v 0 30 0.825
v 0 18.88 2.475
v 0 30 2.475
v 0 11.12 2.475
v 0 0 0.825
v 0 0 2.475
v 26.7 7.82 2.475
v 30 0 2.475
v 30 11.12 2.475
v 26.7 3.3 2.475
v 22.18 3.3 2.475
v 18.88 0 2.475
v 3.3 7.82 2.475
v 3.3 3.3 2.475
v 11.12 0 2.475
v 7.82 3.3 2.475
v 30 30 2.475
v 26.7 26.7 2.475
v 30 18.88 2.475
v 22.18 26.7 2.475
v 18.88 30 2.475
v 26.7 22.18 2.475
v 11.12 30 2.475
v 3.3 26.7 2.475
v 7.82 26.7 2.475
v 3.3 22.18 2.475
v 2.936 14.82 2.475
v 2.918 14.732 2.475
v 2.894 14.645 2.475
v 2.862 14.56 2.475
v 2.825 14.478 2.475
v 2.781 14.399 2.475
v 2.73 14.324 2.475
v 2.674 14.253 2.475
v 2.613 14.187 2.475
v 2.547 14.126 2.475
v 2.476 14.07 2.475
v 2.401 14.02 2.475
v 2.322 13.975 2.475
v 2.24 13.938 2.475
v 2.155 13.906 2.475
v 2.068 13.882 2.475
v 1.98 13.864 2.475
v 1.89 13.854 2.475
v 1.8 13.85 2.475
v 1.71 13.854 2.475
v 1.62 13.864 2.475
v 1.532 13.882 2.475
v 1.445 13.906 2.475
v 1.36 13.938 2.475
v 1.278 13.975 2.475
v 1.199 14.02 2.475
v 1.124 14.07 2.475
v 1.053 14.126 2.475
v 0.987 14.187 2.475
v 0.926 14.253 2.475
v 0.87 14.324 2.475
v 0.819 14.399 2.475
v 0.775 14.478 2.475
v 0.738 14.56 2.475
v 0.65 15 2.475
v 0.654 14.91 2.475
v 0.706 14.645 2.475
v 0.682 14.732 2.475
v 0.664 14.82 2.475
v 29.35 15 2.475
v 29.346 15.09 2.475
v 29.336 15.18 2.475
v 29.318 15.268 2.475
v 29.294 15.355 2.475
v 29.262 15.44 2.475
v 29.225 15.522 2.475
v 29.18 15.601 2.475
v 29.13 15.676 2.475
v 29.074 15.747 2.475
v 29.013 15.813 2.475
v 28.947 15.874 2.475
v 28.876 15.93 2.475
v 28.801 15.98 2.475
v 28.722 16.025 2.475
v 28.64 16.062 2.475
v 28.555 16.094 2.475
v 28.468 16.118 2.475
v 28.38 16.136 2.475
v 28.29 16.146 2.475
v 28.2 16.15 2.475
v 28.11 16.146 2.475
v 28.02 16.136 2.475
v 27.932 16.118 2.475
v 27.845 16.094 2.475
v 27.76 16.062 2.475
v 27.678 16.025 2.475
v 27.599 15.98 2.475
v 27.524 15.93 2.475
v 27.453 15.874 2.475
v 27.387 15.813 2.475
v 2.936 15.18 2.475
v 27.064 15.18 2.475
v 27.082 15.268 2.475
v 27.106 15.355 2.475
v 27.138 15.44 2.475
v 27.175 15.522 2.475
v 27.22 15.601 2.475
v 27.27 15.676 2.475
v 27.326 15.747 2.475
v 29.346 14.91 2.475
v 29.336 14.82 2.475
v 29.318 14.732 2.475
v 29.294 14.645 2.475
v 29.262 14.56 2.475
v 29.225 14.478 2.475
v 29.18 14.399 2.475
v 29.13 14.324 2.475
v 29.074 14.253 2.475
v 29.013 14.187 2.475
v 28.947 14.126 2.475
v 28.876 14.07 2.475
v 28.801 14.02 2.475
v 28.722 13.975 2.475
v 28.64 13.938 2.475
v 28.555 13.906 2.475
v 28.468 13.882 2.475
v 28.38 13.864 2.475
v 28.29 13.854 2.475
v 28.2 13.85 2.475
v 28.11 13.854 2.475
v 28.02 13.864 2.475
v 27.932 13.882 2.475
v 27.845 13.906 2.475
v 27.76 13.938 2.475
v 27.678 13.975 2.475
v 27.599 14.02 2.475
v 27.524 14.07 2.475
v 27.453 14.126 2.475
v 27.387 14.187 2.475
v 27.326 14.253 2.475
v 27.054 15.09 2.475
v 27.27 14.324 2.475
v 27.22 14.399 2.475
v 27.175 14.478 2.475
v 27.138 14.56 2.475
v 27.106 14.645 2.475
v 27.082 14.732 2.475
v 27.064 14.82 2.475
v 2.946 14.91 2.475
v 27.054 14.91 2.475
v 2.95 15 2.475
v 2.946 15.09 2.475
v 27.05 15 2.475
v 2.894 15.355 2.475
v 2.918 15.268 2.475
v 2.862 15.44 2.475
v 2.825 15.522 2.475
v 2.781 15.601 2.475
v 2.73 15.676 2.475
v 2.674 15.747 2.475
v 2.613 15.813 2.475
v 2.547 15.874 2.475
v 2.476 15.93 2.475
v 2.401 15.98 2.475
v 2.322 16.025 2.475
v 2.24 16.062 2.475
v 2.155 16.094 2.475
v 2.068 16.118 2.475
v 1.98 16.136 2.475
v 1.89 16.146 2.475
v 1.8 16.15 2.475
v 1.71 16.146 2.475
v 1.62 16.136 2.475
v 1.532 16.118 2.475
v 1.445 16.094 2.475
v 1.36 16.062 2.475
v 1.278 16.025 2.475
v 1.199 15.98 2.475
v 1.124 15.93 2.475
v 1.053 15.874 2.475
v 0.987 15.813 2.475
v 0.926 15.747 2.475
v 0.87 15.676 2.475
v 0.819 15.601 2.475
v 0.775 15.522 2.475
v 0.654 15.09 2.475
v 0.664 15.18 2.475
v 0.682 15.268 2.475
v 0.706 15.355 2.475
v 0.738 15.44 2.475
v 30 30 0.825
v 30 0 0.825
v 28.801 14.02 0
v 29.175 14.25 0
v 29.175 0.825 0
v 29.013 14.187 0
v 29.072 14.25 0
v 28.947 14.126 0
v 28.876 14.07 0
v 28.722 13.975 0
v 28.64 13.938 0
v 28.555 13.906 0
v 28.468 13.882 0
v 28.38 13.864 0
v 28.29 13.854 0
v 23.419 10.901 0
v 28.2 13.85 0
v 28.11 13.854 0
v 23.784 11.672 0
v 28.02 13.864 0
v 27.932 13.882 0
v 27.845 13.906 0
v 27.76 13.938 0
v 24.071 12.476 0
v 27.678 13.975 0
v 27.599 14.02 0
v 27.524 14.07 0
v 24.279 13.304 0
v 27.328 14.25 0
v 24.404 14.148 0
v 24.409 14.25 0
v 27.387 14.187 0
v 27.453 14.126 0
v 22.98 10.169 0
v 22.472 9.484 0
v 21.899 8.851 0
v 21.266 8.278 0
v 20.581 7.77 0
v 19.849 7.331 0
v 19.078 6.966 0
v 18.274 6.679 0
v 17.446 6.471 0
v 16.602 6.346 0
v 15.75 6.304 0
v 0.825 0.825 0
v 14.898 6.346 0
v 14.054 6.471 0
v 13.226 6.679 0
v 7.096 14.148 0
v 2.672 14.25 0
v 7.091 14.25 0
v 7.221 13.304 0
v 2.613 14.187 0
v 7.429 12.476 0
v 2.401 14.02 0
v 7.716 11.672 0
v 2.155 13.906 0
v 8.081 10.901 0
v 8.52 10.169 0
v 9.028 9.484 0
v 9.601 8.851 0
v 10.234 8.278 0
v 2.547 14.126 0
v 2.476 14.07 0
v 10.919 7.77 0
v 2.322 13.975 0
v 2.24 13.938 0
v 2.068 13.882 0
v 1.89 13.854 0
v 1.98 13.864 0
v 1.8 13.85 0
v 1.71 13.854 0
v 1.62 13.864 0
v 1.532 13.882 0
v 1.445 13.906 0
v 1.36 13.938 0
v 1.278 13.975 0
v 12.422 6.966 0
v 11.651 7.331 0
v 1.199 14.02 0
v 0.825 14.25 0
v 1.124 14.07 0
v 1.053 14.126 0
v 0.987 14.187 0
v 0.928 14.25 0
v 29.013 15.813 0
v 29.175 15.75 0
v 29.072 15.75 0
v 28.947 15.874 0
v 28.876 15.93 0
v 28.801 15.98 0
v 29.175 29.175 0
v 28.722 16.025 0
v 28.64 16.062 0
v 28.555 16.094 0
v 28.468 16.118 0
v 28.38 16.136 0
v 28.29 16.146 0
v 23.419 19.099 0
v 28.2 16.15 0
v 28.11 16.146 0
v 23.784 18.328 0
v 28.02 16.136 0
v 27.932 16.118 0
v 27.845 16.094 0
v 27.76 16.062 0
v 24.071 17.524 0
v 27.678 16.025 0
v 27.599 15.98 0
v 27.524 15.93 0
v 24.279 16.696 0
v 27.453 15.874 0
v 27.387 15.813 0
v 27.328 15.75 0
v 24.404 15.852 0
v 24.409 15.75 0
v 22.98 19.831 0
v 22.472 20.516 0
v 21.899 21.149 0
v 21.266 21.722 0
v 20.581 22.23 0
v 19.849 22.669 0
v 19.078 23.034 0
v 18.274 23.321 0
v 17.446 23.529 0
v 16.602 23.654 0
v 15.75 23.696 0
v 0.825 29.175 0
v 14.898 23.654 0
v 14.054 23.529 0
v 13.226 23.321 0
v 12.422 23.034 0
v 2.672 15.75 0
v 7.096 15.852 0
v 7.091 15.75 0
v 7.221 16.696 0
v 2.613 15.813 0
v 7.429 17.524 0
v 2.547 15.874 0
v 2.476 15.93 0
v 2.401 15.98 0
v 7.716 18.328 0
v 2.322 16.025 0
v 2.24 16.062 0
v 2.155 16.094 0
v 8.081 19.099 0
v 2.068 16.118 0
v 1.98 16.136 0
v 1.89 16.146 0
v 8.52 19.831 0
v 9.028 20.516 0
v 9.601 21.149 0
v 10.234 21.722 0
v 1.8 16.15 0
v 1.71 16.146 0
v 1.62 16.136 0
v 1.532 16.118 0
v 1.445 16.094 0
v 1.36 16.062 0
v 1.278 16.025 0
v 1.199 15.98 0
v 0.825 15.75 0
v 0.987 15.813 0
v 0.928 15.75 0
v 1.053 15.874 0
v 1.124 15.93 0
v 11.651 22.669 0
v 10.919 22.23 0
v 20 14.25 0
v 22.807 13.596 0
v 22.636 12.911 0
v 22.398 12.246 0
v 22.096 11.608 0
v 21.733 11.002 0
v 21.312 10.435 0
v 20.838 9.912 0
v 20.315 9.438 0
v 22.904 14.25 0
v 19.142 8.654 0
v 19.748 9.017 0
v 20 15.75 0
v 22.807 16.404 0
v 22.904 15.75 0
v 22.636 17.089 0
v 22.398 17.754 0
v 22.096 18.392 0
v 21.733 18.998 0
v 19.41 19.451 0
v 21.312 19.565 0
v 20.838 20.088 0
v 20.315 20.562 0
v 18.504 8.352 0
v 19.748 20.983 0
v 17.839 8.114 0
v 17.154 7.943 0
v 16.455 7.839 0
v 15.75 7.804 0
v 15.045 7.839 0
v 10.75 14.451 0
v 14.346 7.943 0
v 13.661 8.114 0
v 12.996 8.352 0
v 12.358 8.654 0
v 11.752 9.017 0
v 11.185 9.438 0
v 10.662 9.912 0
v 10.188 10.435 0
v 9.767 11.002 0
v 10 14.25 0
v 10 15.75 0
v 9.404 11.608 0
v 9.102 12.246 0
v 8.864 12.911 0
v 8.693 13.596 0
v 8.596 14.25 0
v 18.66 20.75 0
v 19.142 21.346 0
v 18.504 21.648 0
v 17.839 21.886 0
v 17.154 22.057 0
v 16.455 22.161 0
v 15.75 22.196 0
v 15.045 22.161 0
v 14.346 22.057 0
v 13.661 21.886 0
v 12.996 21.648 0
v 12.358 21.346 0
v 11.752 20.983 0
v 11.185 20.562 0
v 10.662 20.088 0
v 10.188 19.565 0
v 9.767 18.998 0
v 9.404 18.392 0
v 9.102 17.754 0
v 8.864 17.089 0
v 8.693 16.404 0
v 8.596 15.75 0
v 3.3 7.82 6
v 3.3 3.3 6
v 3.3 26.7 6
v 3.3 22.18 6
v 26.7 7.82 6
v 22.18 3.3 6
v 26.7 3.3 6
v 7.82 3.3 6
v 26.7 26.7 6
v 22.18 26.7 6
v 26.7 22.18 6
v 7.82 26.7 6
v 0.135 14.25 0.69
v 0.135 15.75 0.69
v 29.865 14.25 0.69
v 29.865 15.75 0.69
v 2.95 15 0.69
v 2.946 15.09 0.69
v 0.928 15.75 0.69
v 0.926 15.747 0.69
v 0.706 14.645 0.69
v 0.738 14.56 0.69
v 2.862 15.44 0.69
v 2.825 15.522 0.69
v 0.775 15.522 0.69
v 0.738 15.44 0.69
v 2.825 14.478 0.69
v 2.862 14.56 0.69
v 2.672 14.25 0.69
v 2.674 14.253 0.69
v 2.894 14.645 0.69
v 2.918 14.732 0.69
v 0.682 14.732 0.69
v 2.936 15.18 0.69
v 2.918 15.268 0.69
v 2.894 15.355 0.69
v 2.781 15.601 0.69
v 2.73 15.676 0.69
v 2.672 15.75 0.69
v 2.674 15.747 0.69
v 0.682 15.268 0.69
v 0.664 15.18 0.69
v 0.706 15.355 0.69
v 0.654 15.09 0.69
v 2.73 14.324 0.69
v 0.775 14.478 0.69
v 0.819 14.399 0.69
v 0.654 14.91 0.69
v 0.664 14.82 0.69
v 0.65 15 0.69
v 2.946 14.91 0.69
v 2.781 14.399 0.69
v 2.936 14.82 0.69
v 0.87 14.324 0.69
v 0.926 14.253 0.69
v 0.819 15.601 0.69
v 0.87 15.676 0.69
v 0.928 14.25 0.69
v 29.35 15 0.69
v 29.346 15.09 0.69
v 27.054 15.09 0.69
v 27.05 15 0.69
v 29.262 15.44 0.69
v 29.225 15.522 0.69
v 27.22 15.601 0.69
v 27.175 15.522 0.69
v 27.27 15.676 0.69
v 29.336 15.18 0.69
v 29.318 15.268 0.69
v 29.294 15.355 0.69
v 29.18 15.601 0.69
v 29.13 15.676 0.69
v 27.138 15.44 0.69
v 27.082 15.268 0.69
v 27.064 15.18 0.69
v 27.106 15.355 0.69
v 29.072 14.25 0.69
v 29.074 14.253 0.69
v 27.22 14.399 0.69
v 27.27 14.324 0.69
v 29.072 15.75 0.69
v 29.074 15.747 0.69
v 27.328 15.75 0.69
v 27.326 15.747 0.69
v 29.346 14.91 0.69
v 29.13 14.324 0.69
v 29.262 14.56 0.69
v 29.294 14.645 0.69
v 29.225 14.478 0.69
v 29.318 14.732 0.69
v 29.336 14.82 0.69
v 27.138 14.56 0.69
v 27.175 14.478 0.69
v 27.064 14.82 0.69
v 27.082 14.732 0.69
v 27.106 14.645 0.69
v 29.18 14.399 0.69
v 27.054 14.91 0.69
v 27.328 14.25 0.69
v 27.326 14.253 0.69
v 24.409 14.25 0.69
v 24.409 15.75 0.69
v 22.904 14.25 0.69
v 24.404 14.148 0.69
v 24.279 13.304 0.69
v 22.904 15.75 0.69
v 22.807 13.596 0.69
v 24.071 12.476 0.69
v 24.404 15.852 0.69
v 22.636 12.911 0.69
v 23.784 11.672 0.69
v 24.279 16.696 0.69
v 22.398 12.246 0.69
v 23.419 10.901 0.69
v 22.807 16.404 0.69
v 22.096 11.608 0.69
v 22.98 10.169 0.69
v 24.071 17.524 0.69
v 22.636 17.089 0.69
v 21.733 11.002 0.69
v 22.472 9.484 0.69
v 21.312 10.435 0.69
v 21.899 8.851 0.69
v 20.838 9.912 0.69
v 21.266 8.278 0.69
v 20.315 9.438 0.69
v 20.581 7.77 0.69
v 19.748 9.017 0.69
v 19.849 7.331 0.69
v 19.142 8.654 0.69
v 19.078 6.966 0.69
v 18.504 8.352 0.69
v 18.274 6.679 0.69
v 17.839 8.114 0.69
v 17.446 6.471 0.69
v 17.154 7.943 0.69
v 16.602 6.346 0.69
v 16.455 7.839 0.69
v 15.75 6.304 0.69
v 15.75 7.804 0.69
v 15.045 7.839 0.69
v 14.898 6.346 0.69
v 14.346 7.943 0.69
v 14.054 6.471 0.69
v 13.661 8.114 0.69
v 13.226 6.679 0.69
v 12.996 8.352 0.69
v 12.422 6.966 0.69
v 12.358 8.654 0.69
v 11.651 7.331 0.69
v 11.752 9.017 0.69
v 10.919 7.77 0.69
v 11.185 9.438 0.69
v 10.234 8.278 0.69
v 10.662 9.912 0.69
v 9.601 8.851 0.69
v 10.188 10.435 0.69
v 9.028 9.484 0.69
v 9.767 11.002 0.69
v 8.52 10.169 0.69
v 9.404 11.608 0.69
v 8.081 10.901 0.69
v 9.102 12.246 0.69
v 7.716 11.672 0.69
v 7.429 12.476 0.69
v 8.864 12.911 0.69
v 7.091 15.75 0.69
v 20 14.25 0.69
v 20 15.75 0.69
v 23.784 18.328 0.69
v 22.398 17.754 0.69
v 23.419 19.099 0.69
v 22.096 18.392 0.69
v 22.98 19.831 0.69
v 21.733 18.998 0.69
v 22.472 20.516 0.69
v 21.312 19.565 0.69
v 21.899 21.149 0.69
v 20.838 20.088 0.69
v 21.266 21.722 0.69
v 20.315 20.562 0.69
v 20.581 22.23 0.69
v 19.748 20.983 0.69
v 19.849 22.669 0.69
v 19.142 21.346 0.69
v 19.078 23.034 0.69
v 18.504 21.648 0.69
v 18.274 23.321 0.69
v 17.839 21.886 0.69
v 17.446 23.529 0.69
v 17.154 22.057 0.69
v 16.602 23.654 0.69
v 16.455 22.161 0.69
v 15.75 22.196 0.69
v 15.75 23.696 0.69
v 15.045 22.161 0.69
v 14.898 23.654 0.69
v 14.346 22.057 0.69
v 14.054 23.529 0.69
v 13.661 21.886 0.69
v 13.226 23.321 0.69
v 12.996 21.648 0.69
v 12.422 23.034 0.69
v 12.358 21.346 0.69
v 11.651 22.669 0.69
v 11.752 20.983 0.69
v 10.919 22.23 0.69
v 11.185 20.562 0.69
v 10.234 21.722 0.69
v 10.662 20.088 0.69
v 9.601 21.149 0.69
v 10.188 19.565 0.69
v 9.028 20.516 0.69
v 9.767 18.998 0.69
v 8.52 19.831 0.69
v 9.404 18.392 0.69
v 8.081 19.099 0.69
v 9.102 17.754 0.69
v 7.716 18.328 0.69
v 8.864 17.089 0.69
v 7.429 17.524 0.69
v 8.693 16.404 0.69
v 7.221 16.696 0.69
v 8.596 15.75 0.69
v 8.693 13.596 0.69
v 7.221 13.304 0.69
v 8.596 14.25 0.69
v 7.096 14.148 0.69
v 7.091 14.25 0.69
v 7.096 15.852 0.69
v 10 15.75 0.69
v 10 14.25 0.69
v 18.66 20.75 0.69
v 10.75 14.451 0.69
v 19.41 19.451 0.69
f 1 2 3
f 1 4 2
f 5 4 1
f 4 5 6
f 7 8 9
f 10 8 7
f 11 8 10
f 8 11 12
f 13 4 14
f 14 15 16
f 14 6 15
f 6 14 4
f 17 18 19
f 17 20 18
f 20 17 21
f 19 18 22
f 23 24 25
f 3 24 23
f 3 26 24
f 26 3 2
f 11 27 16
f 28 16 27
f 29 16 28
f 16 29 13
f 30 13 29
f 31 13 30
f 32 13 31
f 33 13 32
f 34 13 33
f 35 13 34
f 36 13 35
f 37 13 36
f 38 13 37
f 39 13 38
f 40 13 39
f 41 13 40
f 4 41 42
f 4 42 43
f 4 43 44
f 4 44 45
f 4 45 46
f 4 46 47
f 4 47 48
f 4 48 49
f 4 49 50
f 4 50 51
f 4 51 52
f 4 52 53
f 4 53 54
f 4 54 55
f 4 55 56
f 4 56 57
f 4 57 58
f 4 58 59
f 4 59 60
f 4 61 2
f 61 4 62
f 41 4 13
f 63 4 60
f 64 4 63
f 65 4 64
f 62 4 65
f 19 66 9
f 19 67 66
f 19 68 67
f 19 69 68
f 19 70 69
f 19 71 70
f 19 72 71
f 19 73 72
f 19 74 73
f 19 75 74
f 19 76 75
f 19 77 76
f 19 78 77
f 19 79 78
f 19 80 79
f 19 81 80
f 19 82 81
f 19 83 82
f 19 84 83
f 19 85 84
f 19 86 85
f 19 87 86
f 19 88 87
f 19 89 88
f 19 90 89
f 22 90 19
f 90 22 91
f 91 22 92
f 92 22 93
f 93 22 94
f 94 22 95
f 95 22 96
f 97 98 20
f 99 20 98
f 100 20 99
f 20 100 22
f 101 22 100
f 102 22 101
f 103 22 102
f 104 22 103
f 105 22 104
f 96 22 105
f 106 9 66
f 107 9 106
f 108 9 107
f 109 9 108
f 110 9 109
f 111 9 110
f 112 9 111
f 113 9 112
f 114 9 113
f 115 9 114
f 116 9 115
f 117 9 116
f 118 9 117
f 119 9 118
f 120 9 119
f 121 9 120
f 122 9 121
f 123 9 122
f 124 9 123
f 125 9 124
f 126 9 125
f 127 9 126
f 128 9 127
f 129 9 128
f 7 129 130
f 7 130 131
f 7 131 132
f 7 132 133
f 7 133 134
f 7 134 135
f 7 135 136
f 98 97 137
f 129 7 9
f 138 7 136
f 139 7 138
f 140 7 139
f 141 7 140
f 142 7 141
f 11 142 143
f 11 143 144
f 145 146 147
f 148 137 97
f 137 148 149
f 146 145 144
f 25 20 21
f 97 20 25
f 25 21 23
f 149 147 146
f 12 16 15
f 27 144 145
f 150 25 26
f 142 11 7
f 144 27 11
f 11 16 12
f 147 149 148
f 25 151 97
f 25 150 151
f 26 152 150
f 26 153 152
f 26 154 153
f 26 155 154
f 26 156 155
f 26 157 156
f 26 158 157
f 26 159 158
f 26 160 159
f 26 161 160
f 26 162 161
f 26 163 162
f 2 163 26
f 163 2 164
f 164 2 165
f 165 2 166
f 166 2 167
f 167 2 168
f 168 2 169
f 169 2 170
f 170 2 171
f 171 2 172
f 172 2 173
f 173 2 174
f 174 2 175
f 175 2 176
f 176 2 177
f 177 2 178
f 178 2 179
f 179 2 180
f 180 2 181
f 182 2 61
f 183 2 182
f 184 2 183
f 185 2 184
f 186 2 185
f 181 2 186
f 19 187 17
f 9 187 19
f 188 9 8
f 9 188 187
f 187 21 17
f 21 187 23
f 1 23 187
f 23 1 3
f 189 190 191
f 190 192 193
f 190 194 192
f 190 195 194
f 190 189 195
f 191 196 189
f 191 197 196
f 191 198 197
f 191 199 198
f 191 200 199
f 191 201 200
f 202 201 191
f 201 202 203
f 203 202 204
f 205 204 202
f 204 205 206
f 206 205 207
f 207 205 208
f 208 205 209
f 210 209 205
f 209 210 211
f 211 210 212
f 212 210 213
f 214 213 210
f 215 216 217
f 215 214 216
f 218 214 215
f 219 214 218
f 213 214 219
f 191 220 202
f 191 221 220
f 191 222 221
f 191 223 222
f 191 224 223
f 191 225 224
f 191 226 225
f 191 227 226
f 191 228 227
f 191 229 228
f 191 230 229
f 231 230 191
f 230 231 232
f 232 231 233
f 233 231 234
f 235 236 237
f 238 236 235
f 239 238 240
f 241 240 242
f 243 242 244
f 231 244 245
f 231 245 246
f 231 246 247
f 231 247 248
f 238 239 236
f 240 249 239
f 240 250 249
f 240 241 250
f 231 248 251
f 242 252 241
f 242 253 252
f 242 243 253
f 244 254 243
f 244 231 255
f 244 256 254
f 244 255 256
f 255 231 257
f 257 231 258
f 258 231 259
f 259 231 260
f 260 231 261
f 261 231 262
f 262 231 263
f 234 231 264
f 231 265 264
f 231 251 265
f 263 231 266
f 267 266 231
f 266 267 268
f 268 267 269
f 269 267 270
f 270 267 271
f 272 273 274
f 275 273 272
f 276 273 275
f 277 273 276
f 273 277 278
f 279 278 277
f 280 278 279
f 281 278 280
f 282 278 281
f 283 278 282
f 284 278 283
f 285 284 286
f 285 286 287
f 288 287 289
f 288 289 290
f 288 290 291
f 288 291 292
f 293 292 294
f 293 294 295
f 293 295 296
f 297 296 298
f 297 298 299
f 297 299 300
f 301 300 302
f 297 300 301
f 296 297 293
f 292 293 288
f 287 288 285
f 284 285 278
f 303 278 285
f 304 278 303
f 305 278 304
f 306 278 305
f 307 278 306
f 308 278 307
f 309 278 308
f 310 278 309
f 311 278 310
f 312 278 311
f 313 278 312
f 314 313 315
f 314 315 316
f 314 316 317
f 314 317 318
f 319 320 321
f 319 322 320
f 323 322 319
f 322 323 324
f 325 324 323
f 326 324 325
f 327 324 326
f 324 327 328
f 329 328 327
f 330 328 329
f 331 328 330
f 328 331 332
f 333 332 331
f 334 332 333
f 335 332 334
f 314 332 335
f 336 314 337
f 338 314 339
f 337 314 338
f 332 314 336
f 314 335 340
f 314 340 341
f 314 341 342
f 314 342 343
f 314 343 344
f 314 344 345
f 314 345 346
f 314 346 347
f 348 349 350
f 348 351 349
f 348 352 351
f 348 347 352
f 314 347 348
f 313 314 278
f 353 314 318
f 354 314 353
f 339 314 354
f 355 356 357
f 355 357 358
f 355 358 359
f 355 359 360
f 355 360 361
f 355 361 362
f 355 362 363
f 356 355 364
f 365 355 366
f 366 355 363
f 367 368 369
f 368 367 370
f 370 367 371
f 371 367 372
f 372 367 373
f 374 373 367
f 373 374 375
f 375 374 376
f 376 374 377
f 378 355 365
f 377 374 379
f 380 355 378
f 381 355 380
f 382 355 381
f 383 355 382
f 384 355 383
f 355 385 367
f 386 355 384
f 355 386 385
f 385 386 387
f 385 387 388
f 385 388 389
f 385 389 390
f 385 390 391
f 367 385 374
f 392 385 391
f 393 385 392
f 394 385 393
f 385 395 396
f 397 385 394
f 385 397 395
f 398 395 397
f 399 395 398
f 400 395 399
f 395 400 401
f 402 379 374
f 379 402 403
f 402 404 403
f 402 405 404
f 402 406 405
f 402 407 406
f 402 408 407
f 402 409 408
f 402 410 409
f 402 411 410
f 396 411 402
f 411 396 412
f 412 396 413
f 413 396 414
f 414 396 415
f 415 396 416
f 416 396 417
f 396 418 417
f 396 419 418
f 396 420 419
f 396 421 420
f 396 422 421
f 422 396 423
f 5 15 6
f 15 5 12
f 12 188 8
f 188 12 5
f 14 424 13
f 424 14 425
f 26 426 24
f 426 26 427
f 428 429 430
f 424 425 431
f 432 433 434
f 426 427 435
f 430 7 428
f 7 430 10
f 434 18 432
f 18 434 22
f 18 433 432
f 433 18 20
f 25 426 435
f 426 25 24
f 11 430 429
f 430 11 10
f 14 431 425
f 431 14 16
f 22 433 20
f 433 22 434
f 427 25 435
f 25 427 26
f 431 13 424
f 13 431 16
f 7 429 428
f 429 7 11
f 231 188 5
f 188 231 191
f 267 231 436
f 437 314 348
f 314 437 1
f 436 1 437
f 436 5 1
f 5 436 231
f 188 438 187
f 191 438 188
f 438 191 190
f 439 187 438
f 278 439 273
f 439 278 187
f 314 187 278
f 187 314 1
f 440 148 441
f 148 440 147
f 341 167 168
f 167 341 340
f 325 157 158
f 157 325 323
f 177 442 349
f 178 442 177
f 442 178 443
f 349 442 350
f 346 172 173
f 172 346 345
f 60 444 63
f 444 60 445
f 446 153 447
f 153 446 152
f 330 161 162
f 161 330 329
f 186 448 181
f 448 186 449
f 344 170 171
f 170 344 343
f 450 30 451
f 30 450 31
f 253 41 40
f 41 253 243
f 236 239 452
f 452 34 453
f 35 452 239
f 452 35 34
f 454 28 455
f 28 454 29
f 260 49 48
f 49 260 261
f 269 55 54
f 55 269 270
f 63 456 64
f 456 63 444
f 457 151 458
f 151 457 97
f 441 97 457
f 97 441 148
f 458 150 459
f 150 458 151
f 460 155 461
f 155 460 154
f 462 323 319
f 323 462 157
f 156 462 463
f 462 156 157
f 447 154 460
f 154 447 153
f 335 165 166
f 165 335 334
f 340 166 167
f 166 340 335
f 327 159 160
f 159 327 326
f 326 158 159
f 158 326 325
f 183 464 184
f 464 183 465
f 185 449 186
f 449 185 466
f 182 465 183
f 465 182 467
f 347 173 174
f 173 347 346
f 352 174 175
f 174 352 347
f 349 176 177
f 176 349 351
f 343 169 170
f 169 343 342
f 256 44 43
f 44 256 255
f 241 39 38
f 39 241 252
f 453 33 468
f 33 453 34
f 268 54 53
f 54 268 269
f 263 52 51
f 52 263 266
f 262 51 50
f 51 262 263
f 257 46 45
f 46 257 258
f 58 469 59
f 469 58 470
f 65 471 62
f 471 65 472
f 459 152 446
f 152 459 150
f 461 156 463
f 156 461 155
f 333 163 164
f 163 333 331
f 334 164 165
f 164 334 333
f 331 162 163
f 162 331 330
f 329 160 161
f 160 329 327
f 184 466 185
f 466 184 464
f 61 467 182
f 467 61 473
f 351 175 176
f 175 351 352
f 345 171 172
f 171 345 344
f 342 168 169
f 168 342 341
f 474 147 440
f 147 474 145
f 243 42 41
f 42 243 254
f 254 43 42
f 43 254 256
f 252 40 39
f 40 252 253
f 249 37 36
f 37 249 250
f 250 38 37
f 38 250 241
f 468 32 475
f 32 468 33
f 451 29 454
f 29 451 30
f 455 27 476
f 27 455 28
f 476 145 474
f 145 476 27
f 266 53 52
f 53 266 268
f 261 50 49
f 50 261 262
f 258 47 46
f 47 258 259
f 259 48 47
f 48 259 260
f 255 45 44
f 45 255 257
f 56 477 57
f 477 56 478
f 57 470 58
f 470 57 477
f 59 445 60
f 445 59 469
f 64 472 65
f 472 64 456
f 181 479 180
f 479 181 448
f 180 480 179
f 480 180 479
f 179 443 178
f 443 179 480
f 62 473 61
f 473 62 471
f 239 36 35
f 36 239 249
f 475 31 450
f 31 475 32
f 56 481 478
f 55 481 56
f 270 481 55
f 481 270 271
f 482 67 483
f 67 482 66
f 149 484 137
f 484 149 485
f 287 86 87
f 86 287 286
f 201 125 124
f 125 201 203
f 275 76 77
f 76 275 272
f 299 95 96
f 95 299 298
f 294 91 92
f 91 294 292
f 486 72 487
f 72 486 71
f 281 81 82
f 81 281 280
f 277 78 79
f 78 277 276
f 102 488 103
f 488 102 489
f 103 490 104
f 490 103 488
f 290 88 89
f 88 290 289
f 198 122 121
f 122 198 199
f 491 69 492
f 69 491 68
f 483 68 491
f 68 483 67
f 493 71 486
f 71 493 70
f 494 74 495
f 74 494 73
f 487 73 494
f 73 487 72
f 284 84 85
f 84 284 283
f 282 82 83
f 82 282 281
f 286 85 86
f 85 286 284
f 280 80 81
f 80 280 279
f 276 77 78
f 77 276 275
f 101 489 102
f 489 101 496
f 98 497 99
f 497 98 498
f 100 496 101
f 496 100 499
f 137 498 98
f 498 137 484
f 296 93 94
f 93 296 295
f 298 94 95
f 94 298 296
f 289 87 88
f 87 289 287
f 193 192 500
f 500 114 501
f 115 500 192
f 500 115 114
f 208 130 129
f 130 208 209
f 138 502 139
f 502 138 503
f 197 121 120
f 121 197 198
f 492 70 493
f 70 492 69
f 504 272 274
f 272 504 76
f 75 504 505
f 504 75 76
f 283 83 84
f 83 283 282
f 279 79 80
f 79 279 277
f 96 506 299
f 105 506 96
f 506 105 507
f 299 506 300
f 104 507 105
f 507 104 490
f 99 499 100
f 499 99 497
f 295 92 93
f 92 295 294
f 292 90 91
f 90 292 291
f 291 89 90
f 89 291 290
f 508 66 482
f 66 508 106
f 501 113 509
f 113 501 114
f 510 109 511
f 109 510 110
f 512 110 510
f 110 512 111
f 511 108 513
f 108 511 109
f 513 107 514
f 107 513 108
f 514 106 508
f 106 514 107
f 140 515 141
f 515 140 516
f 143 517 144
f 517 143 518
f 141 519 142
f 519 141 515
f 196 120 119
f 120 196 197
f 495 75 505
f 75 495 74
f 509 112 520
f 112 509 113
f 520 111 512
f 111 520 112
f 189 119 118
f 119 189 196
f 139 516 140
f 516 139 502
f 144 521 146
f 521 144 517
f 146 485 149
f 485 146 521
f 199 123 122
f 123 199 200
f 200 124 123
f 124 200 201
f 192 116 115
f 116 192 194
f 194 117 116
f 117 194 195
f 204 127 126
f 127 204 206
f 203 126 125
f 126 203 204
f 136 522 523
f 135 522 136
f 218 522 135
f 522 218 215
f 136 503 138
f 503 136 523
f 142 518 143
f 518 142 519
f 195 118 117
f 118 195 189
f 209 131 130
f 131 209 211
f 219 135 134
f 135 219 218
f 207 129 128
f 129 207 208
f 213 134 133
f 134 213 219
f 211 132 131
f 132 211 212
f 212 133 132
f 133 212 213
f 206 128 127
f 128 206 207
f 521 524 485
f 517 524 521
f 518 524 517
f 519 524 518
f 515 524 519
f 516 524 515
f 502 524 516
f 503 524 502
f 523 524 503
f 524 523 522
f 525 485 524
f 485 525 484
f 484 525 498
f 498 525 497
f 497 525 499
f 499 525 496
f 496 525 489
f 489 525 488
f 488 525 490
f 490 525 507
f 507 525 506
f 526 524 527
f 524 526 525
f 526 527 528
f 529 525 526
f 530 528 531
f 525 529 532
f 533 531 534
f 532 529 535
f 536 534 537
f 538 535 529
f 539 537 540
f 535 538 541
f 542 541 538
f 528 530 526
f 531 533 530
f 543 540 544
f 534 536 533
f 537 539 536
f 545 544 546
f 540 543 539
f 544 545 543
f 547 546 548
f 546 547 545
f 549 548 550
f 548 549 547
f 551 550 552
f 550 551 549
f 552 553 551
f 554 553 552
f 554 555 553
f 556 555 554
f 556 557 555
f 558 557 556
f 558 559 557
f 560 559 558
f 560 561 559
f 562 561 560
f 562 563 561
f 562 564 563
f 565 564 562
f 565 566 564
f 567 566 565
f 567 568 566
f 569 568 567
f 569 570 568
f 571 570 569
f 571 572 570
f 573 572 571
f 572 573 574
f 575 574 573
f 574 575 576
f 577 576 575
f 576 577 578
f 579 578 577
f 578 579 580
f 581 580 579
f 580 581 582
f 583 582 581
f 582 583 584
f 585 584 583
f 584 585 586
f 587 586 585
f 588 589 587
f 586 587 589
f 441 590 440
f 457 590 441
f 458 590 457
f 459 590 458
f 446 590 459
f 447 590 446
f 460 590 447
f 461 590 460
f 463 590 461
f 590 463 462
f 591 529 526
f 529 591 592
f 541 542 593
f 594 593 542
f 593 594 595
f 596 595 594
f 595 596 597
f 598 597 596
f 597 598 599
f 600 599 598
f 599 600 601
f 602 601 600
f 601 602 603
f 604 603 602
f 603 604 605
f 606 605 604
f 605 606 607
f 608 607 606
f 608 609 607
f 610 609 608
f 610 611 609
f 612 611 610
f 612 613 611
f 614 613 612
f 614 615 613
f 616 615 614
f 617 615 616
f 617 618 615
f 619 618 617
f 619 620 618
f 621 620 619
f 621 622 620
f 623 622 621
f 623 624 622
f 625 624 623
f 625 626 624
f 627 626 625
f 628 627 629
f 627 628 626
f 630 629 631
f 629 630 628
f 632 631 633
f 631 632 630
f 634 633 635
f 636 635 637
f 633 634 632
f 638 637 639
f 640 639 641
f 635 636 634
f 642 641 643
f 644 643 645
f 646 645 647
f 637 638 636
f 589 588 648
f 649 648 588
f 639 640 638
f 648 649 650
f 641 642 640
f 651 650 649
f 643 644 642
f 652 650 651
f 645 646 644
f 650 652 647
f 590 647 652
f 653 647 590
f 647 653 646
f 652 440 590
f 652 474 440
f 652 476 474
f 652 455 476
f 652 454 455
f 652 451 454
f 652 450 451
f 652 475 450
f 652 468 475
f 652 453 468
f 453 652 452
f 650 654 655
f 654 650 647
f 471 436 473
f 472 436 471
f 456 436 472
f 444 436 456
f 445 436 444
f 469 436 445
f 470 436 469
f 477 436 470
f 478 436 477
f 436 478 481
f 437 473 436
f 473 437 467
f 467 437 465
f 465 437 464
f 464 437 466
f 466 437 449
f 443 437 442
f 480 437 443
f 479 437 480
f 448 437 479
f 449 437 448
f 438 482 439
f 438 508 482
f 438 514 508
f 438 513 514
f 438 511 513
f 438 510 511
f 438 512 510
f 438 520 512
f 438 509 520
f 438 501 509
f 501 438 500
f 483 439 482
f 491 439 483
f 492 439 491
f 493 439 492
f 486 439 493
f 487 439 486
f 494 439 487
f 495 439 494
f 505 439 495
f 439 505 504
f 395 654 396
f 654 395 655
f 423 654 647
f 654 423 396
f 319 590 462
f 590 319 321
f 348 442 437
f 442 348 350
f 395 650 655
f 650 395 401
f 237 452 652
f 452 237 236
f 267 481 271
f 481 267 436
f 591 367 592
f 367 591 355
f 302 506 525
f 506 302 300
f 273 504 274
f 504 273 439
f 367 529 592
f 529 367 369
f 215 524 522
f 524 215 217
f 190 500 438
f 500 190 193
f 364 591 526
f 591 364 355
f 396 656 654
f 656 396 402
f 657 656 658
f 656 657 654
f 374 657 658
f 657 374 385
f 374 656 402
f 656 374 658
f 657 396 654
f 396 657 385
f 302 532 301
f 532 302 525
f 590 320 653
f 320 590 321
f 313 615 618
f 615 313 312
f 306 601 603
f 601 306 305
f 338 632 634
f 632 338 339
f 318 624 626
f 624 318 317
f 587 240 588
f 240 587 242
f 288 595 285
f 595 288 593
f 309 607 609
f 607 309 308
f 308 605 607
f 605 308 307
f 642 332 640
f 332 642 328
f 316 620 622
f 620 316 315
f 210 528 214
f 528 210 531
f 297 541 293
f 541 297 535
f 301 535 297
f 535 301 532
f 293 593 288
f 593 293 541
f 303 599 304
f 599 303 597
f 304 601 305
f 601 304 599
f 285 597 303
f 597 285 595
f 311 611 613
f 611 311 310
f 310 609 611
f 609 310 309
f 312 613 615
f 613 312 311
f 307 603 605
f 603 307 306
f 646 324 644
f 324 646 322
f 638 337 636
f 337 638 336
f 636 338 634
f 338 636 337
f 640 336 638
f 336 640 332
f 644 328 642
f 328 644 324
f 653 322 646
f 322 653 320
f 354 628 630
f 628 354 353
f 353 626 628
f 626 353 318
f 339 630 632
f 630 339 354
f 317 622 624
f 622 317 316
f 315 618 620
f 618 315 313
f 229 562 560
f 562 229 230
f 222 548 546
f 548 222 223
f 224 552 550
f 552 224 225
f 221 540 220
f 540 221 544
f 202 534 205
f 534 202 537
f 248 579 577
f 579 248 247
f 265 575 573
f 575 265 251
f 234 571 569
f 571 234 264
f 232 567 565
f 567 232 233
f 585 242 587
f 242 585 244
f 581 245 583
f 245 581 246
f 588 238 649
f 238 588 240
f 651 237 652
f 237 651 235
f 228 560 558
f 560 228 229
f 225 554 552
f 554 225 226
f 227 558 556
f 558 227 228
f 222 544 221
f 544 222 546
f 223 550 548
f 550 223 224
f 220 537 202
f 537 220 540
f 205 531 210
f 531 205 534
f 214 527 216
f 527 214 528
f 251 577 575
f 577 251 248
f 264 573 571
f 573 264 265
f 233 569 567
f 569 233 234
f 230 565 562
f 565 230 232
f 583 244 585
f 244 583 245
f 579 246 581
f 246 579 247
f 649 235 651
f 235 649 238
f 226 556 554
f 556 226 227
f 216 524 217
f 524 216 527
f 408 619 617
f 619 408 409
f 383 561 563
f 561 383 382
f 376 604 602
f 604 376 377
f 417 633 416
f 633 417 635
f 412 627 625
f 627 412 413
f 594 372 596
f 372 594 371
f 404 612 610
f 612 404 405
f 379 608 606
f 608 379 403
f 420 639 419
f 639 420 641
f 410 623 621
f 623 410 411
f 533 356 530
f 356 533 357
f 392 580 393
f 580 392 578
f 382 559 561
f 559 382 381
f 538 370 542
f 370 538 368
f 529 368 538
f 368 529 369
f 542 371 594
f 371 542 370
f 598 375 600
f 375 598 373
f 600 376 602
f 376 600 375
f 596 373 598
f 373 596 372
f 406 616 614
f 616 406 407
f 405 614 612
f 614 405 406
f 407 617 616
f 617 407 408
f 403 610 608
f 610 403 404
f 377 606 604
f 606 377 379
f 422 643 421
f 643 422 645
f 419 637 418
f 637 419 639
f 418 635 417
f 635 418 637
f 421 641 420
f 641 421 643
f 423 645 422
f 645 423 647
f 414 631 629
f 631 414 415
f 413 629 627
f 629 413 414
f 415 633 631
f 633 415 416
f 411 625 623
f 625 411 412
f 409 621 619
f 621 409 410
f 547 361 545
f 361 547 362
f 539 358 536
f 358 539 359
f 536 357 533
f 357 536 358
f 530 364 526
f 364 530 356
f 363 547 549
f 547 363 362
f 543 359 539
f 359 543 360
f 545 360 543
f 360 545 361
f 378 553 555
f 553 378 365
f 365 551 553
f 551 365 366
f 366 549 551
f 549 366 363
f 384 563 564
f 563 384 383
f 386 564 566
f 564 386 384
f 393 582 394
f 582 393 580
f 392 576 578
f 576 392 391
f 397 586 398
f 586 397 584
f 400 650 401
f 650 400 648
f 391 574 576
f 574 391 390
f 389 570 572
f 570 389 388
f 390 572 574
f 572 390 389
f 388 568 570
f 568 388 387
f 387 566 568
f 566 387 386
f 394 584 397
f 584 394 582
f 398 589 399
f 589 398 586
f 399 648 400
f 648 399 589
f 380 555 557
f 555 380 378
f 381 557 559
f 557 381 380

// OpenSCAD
// file: sym_switch.scad
module switch(length, width, thickness, height)
{
    translate([0,-thickness/2,0])cube([length/2-width/2, thickness, height]);
    translate([(length/2+width/2),-thickness/2,0])cube([(length/2-width/2), thickness, height]);
    
    translate([(length/2-width/2),+thickness/2, 0])rotate([0,0,-60])cube([thickness, width, height]);
    
}

switch(30, 12, 1, 1);
// file: settings.scad
cube_width=30;
cube_height=16;
cube_thickness=3.3;

cap_width=30;
cap_height=6;
cap_thickness=3.3;

glyph_depth=0.7;
glyph_thickness=1.5;

photo_resitor_hole_r = 3.1;
spring_contact_hole_r = 3.35;
// file: sym_switch_reed.scad
use <sym_switch.scad>

module switch_reed(length, width, thickness, height)
{
    switch(length, width, thickness, height);
    radius = width/1.15;
    translate([2*length/4+thickness/2,0,0]) difference()
    {
        cylinder(r=radius, h=height, $fn=64);
        translate([0,0,-thickness/2])cylinder(r=(radius-thickness), h=(height+thickness), $fn=64);
    }
}

switch_reed(30, 10, 1, 0.5);
// file: cap_1x1.scad
include <settings.scad>

module cap_1x1(width, height, thickness, holes_mask)
{
    width1=width-thickness;
    difference()
    {
        union()
        {
            cube([width, width, thickness*3/4]);
            translate([thickness,thickness,0])cube([width-2*thickness, width-2*thickness, height]);
        }
        union()
        {
            translate([width/2,width/2,0])rotate([0,0,45])translate([-width1/2,-width1/2,thickness*3/4]) cube([width1,width1,height]);
                        //corners
            translate([0,0.25*thickness,0])rotate([45,0,0]) translate([-0.5*width, -width, -0.5*height]) cube([2*width, width, 2*height]);
            translate([0.25*thickness,0,0]) rotate([0,-45,0]) translate([-width, -0.5*width, -0.5*height]) cube([width, 2*width, 2*height]);
            translate([width-0.25*thickness,0,0]) rotate([0,45,0]) translate([0, 0, -0.5*height]) cube([width, 2*width, 2*height]);
            translate([0,width-0.25*thickness,0]) rotate([-45,0,0]) translate([-0.5*width, 0, -0.5*height]) cube([2*width, width, 2*height]);
            
            if (holes_mask >= 8)
            {
                translate([width/2, thickness-1.5, -0.5]) cylinder(r=1.15, h=height*1.5, $fn=80);
            }
            if ((holes_mask%8) >= 4)
            {
                translate([width/2, width-thickness+1.5, -0.5]) cylinder(r=1.15, h=height*1.5, $fn=80);
            }
            if ((holes_mask%4)>= 2)
            {
                translate([thickness-1.5, width/2, -0.5]) cylinder(r=1.15, h=height*1.5, $fn=80);
            }
            if (holes_mask%2 >= 1)
            {
                translate([width-thickness+1.5, width/2, -0.5]) cylinder(r=1.15, h=height*1.5, $fn=80);
            }
        }
    }
}

cap_1x1(cap_width, cap_height, cap_thickness, 9);
//ring(10,1,1);
//arrow(1, 20, 3, 1);
//transistor_npn(30, 1, 1);
// main file
use <cap_1x1.scad>
use <sym_switch_reed.scad>
include <settings.scad>

module cap_1x1_switch_reed(width, height, thickness)
{
    difference()
    {
        cap_1x1(width, height, thickness, 3);
        translate([0,width/2,-0.01]) switch_reed(width, width/3, glyph_thickness, glyph_depth);
    }
}

cap_1x1_switch_reed(cap_width, cap_height, cap_thickness);
